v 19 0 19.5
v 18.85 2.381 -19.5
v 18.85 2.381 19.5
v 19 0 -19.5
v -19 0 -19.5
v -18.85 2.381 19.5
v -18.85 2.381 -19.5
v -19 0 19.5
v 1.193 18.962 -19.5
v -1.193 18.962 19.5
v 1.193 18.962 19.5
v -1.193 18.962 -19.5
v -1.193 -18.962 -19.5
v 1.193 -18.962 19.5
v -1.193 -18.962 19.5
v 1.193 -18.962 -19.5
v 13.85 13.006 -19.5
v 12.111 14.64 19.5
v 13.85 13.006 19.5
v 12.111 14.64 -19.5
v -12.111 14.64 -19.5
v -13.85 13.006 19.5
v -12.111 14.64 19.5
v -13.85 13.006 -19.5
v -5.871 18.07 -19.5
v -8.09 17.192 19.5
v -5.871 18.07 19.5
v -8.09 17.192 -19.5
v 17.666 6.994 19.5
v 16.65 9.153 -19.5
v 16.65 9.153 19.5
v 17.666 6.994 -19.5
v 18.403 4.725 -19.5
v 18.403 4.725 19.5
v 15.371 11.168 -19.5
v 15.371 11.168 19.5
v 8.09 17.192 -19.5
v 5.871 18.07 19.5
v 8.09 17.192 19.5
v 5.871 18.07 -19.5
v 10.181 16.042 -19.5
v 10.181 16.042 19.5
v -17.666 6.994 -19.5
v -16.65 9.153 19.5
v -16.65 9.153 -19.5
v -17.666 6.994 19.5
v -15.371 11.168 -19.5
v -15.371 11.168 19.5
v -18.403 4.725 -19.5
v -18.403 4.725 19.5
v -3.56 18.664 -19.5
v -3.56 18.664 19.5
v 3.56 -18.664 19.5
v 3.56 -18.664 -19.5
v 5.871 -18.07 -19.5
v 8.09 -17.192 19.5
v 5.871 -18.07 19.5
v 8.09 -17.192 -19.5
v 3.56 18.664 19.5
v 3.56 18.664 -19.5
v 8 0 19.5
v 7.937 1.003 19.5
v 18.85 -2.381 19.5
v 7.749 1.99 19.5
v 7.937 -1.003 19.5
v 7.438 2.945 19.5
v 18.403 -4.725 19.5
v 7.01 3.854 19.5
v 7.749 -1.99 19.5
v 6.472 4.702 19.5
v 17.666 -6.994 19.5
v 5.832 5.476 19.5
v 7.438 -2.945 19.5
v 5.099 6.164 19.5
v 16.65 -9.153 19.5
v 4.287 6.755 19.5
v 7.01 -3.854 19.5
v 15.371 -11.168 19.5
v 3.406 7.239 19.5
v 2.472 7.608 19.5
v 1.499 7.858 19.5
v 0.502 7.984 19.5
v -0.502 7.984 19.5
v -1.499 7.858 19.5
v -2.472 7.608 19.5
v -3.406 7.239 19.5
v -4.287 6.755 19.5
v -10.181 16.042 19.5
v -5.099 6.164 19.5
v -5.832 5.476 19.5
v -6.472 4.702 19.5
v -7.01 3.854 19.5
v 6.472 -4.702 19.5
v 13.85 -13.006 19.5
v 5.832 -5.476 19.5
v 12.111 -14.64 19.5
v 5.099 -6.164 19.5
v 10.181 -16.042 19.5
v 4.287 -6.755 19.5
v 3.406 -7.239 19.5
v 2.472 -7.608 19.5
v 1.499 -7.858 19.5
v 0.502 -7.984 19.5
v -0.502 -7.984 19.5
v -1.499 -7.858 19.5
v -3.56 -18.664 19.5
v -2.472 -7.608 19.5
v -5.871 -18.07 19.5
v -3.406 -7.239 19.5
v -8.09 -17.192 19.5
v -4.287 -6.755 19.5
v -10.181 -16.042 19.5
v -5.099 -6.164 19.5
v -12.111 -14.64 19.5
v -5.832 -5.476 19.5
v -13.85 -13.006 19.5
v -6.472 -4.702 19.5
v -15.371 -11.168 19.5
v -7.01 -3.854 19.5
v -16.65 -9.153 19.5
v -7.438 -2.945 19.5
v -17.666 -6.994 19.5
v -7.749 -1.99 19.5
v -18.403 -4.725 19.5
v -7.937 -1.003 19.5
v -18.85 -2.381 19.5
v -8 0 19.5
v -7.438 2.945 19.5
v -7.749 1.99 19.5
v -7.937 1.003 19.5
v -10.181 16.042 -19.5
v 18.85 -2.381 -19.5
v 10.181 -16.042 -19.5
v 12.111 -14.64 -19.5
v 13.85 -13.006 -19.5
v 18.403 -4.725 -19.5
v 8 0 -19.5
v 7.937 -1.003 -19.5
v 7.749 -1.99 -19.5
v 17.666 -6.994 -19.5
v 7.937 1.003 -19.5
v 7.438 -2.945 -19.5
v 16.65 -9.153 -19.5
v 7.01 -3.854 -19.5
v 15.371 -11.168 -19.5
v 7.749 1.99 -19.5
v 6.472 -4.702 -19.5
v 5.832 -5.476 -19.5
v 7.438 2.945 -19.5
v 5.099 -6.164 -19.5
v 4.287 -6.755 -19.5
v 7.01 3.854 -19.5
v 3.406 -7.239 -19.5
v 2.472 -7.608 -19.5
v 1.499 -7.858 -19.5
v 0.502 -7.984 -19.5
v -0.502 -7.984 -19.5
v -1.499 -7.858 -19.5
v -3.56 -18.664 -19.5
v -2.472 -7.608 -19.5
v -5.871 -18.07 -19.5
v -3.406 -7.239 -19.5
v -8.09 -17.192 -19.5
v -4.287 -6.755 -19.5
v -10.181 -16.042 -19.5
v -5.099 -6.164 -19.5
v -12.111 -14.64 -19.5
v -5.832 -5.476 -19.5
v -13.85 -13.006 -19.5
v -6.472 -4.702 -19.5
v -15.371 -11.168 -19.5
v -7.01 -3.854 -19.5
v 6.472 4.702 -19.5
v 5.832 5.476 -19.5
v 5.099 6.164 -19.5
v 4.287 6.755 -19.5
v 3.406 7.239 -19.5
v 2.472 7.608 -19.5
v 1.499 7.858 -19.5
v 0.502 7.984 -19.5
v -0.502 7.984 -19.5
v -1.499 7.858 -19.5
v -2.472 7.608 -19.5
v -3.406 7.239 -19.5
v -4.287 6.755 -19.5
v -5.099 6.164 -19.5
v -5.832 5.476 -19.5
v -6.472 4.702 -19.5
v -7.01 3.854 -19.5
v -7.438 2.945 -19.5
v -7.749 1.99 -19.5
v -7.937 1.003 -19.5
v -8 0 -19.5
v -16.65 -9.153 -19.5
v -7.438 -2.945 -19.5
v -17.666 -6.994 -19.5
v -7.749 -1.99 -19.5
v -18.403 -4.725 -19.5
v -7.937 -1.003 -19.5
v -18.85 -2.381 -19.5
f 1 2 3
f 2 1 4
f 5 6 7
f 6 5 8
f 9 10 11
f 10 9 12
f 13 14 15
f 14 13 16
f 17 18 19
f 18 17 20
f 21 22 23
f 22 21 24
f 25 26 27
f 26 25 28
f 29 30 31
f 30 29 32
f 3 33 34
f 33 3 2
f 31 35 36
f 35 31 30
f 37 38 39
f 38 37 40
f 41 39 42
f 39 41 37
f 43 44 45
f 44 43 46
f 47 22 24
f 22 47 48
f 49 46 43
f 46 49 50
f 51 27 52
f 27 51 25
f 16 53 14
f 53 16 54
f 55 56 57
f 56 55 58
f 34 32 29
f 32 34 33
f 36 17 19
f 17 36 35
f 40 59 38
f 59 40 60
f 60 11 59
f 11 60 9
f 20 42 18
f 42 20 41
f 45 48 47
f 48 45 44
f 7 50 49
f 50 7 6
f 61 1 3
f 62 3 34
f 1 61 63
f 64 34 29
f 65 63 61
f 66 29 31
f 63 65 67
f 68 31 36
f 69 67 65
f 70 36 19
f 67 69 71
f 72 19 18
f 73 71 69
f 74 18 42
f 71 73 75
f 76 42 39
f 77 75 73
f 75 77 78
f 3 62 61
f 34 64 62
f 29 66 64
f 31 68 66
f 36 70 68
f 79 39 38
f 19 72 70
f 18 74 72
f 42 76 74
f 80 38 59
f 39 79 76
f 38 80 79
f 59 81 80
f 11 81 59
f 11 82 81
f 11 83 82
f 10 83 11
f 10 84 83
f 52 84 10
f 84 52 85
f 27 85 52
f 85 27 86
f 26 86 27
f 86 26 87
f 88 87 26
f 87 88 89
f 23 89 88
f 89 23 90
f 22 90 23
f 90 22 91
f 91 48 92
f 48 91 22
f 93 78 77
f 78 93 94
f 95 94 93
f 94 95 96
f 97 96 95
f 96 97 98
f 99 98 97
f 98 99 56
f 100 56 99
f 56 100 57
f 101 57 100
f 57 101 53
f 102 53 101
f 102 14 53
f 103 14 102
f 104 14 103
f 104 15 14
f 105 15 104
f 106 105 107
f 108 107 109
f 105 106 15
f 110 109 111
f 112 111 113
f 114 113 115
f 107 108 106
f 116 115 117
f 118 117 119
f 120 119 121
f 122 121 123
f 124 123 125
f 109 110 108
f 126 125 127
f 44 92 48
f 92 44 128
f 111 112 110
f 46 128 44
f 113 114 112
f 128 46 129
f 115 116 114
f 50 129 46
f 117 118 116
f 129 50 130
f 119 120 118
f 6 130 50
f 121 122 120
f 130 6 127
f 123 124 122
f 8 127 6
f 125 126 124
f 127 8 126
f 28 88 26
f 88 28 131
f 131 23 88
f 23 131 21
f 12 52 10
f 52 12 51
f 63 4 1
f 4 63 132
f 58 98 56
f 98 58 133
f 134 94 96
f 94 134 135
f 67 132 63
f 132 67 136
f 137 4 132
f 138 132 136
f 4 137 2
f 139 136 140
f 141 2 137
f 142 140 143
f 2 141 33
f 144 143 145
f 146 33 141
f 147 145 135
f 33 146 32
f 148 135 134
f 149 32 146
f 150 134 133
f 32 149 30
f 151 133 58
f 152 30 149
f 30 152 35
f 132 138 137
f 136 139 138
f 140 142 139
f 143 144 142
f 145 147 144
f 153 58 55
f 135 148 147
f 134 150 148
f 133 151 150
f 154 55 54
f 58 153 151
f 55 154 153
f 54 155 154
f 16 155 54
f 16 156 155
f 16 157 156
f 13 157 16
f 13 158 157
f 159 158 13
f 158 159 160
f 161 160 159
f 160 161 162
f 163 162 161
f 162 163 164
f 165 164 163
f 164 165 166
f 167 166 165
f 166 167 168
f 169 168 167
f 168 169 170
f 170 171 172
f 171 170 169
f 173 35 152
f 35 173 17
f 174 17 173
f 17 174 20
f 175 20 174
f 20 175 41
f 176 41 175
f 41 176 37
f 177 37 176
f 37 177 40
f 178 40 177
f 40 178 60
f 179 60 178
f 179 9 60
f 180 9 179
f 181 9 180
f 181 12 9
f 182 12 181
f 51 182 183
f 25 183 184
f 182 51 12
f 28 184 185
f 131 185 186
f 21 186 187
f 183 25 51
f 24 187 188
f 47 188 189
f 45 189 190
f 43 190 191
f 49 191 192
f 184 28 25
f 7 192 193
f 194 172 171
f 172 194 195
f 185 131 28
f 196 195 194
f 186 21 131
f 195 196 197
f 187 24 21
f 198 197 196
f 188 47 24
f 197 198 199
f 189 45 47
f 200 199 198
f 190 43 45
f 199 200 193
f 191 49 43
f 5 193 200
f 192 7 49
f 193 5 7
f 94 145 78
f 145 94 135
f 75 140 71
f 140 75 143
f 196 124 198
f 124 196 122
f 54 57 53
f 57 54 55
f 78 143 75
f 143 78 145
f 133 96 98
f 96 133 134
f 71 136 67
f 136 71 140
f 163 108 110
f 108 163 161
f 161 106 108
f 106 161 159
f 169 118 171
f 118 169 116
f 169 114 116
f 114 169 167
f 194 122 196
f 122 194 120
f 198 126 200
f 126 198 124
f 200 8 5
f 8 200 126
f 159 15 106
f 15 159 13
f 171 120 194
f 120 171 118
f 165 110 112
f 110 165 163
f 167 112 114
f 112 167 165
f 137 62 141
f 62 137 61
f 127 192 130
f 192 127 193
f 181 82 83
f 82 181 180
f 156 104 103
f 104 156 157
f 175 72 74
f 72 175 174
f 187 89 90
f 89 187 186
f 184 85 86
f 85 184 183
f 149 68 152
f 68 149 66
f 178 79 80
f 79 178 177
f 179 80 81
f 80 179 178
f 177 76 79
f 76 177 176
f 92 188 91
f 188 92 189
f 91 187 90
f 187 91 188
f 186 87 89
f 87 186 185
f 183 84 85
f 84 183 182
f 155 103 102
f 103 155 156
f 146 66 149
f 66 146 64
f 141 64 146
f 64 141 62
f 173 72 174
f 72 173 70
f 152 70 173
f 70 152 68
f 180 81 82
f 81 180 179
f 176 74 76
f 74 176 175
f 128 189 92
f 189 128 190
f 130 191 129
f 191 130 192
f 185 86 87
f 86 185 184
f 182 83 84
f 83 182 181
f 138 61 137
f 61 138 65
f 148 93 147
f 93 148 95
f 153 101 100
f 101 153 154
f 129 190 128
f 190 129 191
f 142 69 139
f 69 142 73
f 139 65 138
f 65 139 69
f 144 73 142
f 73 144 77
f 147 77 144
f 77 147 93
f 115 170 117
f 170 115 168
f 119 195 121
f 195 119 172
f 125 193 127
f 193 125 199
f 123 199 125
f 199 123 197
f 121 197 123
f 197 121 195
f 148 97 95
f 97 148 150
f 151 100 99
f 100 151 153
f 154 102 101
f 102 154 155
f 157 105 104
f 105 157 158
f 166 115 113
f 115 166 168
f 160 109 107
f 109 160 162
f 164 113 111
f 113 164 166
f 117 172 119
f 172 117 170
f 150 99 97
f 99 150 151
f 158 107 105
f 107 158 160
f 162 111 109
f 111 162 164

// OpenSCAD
$fn = 50;


difference() {
	union() {
		translate(v = [0, 0, -19.5000000000]) {
			cylinder(h = 39, r = 19.0000000000);
		}
	}
	union() {
		translate(v = [0, 0, -100.0000000000]) {
			cylinder(h = 200, r = 8);
		}
	}
}
